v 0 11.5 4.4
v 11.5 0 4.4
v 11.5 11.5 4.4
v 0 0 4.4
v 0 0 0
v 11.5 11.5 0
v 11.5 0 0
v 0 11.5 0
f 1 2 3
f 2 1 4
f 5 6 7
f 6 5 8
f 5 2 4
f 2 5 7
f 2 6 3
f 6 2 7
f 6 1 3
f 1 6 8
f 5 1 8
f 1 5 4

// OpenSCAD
/* Warning, this is a very basic generator with a lot of approximation 
input data : [PLCC, , 11.5x11.5x4.4mm, 28, , E, C04-00026E]
generated by com.zoubworld.electronics.cad.model3d.Basic
Date : Sun Feb 15 10:50:48 CET 2026
*/

//body
color("black")
translate([0,0,0])
cube([11.5,11.5,4.4], center=false);
